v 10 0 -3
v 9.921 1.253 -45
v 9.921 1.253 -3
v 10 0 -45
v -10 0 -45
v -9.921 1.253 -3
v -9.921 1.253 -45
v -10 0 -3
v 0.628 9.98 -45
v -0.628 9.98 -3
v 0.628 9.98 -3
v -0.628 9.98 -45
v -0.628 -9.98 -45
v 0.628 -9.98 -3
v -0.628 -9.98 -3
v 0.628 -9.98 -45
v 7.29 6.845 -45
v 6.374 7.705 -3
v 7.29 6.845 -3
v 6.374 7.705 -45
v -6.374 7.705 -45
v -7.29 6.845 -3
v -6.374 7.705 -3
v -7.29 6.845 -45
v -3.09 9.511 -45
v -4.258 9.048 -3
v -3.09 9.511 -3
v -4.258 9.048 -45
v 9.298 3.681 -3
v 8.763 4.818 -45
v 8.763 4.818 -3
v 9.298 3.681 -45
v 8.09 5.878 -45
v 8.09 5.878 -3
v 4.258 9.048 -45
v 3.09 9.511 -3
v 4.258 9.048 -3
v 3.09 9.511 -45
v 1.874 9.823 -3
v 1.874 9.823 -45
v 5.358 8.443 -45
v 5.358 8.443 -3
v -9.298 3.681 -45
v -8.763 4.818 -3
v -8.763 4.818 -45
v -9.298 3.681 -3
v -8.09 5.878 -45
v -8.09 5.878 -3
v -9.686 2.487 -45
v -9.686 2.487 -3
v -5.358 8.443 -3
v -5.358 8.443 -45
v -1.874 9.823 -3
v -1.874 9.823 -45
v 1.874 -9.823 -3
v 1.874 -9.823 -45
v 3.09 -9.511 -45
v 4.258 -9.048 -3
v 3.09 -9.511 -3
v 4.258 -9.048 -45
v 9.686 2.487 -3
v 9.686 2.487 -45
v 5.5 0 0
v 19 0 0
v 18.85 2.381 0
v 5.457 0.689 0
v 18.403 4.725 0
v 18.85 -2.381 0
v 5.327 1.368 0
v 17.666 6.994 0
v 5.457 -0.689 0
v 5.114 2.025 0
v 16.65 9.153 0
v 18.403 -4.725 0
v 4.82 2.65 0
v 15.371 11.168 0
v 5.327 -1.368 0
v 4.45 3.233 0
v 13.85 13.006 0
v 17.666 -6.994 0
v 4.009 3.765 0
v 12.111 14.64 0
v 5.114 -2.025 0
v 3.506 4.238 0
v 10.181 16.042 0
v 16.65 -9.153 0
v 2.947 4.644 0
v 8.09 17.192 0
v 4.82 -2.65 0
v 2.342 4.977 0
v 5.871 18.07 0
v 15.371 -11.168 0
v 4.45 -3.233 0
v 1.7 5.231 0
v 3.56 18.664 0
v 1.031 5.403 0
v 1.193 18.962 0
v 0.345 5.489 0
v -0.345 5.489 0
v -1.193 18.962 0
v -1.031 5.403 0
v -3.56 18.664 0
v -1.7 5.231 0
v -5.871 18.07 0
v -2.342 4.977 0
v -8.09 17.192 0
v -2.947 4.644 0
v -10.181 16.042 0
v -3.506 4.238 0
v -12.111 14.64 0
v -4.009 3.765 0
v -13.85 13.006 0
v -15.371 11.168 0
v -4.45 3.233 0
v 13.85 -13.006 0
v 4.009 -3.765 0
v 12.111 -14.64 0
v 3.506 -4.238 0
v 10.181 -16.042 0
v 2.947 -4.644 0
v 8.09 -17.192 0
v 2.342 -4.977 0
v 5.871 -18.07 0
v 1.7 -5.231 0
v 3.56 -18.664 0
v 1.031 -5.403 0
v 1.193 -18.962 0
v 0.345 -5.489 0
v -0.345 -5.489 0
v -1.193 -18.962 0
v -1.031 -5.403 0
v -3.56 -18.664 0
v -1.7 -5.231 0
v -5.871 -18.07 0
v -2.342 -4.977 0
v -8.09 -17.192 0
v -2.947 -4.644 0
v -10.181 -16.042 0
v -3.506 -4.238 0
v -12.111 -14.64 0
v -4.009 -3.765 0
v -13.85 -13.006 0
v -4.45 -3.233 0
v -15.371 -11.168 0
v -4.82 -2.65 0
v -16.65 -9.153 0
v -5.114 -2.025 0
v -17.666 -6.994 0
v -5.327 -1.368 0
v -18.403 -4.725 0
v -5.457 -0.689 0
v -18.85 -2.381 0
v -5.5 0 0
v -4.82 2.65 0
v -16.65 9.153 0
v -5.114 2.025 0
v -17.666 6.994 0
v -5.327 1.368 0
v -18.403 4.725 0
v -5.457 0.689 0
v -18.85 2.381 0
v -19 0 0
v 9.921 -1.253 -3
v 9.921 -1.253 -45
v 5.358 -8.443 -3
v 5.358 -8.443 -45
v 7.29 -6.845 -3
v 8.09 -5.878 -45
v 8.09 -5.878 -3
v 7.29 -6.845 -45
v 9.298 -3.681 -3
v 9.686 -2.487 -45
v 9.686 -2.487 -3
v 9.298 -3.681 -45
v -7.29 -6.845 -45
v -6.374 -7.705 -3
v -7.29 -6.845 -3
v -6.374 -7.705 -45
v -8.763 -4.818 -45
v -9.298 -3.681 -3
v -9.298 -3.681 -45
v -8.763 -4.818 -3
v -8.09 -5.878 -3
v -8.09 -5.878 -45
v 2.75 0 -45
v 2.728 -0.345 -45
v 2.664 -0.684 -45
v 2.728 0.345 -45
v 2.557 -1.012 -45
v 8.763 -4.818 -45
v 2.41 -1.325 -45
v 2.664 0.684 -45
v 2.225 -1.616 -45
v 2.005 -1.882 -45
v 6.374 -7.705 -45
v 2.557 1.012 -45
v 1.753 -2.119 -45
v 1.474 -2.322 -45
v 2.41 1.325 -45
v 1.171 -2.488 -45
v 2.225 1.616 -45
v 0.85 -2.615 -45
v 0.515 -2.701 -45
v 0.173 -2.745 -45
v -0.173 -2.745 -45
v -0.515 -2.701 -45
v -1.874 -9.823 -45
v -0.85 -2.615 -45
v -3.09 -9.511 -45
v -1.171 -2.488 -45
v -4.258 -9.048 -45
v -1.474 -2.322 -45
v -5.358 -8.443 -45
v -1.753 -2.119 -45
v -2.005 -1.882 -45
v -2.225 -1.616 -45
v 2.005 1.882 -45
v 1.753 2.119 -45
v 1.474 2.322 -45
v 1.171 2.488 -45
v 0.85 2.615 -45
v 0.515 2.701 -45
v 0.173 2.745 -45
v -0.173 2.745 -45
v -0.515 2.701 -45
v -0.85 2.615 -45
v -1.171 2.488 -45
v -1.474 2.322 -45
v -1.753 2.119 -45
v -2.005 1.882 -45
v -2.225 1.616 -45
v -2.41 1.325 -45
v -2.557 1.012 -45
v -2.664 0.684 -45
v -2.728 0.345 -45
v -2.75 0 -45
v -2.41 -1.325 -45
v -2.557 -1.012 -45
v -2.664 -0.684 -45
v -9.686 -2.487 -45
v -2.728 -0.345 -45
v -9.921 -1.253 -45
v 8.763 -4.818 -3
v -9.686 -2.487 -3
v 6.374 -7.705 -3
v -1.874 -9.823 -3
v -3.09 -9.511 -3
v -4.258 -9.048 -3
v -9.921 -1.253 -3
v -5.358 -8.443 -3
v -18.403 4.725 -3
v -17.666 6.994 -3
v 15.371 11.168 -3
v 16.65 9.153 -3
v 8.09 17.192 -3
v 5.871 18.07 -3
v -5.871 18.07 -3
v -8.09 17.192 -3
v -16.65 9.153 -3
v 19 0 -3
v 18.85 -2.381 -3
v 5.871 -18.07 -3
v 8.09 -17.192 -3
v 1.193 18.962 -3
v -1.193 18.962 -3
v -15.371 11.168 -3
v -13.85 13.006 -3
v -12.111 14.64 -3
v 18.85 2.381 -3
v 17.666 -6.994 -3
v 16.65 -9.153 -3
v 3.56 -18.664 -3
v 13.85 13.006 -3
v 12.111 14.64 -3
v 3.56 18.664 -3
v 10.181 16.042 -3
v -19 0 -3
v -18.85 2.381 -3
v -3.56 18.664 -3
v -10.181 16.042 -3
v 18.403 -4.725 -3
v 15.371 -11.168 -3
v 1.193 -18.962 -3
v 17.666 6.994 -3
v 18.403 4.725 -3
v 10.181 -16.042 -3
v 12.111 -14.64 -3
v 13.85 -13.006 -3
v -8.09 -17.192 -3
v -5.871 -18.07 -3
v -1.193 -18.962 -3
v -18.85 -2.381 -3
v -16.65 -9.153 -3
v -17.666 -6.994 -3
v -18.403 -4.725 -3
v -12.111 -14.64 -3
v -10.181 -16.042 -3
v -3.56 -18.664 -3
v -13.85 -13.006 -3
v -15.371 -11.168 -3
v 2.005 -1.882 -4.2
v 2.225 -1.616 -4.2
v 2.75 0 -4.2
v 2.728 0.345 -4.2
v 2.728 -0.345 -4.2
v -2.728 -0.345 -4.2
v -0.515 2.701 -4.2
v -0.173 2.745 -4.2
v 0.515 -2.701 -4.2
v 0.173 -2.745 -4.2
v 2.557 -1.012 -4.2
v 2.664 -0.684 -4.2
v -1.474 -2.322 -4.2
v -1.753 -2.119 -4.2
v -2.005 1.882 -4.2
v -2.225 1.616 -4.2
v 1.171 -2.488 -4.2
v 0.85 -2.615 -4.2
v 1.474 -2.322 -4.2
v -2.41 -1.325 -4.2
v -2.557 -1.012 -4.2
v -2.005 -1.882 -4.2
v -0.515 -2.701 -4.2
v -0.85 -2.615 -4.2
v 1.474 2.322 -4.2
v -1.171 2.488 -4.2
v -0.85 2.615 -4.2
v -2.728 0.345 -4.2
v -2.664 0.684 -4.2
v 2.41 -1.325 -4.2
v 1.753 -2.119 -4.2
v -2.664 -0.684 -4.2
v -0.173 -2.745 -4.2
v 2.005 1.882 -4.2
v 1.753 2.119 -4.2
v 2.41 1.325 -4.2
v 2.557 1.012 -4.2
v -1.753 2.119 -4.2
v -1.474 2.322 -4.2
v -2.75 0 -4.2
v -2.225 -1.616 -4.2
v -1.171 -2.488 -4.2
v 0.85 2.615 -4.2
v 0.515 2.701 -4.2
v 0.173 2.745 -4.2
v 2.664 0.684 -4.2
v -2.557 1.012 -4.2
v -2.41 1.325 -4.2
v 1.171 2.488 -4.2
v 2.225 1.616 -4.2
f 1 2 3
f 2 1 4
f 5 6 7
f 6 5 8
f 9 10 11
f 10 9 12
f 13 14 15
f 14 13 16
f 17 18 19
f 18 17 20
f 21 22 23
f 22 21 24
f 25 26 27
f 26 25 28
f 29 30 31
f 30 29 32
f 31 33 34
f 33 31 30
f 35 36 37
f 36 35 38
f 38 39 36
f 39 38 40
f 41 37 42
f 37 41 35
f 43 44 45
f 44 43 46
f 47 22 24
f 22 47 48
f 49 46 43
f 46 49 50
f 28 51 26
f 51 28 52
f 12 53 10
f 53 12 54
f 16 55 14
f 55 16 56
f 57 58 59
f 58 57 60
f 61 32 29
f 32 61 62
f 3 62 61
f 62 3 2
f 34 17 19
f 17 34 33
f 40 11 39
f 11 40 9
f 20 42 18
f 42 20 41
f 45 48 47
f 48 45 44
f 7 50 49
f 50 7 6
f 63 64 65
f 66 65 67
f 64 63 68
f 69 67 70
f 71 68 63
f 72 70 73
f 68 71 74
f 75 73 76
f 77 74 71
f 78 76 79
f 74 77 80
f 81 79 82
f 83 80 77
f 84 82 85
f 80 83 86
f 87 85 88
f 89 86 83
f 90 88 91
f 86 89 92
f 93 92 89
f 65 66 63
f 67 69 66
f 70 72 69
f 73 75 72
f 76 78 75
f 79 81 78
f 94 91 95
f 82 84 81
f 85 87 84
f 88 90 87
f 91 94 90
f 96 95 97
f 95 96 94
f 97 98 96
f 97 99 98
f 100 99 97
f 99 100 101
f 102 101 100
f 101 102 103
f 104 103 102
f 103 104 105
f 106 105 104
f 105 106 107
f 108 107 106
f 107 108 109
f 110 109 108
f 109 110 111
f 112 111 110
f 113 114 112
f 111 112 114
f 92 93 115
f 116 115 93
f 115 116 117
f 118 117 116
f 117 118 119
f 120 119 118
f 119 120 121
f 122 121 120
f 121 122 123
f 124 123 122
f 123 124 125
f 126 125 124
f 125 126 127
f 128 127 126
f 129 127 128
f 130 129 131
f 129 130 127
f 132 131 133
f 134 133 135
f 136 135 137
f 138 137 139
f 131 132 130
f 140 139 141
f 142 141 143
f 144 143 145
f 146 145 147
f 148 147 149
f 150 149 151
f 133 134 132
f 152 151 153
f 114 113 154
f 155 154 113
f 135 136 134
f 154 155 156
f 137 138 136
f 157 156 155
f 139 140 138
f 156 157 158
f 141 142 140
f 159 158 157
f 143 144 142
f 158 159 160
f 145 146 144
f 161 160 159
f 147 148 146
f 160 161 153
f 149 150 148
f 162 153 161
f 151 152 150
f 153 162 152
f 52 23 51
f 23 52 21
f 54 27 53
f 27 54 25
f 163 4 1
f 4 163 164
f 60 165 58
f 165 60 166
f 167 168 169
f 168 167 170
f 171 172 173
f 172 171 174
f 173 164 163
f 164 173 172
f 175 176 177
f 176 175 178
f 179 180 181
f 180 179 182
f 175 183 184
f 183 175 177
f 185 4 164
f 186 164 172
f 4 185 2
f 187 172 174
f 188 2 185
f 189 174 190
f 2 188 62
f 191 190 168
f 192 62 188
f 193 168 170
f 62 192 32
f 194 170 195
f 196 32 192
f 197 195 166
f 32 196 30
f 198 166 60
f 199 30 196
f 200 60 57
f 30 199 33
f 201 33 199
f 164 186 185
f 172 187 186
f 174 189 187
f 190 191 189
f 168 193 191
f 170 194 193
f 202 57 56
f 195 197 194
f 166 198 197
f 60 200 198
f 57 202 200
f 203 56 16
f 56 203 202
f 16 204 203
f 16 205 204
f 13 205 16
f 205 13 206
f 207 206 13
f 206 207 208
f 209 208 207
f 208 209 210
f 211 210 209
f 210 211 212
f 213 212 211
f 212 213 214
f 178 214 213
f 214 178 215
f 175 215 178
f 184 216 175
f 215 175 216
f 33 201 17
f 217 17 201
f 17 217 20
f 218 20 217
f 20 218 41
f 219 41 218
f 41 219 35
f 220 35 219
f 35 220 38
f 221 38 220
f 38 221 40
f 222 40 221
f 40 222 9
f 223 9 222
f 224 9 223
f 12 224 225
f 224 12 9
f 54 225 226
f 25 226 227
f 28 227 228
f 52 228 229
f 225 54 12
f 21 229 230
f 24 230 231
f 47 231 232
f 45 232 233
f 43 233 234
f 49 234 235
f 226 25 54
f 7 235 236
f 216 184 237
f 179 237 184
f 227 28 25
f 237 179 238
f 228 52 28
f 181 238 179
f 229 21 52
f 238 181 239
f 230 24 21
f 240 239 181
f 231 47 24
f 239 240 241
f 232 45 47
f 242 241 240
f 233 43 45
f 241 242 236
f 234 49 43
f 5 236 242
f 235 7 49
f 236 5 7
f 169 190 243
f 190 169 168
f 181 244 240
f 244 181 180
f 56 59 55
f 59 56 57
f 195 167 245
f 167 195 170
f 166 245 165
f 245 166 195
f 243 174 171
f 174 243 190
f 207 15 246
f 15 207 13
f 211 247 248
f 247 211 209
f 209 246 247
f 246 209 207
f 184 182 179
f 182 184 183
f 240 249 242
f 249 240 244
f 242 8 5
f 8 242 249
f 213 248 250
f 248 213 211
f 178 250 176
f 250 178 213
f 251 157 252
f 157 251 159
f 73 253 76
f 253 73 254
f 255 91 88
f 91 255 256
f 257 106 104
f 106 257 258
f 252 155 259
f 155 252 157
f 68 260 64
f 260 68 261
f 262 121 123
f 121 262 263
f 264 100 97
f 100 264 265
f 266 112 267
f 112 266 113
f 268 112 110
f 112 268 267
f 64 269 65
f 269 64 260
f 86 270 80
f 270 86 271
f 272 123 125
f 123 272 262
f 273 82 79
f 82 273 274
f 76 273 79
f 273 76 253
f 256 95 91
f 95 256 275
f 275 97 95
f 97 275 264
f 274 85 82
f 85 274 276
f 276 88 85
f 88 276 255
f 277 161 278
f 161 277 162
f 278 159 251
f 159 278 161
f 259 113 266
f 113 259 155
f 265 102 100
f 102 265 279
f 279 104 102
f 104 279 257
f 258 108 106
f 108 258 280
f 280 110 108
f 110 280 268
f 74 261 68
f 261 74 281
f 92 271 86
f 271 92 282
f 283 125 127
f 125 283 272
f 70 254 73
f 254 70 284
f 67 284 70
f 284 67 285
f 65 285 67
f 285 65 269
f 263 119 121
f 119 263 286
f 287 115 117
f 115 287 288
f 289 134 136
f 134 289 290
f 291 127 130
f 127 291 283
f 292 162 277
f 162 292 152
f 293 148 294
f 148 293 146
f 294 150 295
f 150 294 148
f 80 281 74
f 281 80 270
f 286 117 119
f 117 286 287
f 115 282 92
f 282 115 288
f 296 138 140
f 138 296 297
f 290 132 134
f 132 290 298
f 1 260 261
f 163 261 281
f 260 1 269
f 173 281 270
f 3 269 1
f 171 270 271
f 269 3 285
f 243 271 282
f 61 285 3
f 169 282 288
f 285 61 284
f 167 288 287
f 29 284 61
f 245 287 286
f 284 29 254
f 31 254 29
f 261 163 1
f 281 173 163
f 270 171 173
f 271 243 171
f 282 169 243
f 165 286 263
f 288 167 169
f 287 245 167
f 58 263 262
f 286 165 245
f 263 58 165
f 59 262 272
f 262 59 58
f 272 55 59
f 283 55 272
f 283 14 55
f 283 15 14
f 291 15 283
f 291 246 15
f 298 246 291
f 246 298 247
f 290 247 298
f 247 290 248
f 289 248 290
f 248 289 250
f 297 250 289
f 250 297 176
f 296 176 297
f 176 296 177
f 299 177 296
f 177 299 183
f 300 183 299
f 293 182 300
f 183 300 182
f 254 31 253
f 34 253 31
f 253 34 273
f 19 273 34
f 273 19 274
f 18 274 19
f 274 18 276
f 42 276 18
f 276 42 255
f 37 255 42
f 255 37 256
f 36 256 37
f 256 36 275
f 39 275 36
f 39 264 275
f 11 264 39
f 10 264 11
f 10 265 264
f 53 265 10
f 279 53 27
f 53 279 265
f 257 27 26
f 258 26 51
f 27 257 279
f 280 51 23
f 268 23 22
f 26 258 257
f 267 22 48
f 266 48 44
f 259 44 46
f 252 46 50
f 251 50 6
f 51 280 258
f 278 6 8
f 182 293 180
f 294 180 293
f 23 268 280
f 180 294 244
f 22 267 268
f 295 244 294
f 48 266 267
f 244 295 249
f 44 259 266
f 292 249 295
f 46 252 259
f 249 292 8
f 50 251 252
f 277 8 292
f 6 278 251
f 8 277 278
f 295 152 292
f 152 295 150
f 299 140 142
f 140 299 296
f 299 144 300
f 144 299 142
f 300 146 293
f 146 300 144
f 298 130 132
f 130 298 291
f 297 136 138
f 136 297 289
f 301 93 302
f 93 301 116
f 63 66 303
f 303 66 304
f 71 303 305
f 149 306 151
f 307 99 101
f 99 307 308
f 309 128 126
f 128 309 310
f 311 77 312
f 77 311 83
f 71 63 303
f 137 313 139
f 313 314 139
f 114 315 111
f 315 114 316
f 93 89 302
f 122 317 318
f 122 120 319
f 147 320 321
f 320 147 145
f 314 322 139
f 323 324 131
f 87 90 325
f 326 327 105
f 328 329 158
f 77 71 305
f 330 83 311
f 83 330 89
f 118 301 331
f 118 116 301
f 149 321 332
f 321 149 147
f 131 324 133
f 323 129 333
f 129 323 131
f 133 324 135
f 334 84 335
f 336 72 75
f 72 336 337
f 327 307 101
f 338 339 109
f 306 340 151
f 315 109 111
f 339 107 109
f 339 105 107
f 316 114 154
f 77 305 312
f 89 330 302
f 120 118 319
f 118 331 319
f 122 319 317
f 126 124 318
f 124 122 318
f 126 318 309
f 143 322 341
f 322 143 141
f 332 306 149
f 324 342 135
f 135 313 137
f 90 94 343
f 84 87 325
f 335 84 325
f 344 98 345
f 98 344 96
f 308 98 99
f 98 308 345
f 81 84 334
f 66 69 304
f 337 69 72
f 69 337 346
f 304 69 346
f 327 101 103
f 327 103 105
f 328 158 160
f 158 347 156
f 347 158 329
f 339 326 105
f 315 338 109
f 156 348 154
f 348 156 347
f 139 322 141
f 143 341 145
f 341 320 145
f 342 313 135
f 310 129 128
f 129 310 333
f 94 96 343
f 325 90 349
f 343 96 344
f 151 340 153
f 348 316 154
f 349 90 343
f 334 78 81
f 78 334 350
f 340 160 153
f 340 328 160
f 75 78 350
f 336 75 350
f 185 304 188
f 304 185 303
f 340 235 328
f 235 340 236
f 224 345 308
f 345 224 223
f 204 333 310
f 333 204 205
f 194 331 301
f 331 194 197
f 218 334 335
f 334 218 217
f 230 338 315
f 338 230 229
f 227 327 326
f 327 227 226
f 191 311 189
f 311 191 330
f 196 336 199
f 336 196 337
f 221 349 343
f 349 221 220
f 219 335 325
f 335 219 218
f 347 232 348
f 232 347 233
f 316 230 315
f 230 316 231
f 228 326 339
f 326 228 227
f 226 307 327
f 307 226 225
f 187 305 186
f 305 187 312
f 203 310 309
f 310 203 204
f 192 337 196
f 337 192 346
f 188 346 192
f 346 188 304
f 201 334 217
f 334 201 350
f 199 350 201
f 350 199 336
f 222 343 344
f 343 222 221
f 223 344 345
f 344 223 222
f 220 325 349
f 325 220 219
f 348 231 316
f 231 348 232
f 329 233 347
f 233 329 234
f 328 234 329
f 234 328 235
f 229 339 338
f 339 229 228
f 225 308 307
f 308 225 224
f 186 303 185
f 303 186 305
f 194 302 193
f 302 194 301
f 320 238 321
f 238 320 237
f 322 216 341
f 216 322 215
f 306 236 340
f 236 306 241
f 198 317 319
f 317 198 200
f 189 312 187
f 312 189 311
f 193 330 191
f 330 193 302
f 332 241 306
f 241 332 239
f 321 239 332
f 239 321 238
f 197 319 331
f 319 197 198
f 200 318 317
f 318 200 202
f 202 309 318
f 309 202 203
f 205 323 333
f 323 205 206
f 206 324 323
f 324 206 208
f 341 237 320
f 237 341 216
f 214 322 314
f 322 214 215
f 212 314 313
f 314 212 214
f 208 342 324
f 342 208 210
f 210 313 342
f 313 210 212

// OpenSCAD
$fn = 50;


difference() {
	union() {
		translate(v = [0, 0, -45.0000000000]) {
			cylinder(h = 45, r = 10.0000000000);
		}
		translate(v = [0, 0, -3.0000000000]) {
			cylinder(h = 3, r = 19.0000000000);
		}
	}
	union() {
		translate(v = [0, 0, 0]) {
			rotate(a = [0, 0, 0]) {
				difference() {
					union() {
						#translate(v = [0, 0, -45.0000000000]) {
							cylinder(h = 45, r = 2.2500000000);
						}
						#translate(v = [0, 0, -4.2000000000]) {
							cylinder(h = 4.2000000000, r = 10.0000000000, r1 = 2.7500000000, r2 = 5.5000000000);
						}
						#translate(v = [0, 0, -45.0000000000]) {
							cylinder(h = 45, r = 2.7500000000);
						}
						#translate(v = [0, 0, -45.0000000000]) {
							cylinder(h = 45, r = 2.2500000000);
						}
					}
					union();
				}
			}
		}
	}
}
